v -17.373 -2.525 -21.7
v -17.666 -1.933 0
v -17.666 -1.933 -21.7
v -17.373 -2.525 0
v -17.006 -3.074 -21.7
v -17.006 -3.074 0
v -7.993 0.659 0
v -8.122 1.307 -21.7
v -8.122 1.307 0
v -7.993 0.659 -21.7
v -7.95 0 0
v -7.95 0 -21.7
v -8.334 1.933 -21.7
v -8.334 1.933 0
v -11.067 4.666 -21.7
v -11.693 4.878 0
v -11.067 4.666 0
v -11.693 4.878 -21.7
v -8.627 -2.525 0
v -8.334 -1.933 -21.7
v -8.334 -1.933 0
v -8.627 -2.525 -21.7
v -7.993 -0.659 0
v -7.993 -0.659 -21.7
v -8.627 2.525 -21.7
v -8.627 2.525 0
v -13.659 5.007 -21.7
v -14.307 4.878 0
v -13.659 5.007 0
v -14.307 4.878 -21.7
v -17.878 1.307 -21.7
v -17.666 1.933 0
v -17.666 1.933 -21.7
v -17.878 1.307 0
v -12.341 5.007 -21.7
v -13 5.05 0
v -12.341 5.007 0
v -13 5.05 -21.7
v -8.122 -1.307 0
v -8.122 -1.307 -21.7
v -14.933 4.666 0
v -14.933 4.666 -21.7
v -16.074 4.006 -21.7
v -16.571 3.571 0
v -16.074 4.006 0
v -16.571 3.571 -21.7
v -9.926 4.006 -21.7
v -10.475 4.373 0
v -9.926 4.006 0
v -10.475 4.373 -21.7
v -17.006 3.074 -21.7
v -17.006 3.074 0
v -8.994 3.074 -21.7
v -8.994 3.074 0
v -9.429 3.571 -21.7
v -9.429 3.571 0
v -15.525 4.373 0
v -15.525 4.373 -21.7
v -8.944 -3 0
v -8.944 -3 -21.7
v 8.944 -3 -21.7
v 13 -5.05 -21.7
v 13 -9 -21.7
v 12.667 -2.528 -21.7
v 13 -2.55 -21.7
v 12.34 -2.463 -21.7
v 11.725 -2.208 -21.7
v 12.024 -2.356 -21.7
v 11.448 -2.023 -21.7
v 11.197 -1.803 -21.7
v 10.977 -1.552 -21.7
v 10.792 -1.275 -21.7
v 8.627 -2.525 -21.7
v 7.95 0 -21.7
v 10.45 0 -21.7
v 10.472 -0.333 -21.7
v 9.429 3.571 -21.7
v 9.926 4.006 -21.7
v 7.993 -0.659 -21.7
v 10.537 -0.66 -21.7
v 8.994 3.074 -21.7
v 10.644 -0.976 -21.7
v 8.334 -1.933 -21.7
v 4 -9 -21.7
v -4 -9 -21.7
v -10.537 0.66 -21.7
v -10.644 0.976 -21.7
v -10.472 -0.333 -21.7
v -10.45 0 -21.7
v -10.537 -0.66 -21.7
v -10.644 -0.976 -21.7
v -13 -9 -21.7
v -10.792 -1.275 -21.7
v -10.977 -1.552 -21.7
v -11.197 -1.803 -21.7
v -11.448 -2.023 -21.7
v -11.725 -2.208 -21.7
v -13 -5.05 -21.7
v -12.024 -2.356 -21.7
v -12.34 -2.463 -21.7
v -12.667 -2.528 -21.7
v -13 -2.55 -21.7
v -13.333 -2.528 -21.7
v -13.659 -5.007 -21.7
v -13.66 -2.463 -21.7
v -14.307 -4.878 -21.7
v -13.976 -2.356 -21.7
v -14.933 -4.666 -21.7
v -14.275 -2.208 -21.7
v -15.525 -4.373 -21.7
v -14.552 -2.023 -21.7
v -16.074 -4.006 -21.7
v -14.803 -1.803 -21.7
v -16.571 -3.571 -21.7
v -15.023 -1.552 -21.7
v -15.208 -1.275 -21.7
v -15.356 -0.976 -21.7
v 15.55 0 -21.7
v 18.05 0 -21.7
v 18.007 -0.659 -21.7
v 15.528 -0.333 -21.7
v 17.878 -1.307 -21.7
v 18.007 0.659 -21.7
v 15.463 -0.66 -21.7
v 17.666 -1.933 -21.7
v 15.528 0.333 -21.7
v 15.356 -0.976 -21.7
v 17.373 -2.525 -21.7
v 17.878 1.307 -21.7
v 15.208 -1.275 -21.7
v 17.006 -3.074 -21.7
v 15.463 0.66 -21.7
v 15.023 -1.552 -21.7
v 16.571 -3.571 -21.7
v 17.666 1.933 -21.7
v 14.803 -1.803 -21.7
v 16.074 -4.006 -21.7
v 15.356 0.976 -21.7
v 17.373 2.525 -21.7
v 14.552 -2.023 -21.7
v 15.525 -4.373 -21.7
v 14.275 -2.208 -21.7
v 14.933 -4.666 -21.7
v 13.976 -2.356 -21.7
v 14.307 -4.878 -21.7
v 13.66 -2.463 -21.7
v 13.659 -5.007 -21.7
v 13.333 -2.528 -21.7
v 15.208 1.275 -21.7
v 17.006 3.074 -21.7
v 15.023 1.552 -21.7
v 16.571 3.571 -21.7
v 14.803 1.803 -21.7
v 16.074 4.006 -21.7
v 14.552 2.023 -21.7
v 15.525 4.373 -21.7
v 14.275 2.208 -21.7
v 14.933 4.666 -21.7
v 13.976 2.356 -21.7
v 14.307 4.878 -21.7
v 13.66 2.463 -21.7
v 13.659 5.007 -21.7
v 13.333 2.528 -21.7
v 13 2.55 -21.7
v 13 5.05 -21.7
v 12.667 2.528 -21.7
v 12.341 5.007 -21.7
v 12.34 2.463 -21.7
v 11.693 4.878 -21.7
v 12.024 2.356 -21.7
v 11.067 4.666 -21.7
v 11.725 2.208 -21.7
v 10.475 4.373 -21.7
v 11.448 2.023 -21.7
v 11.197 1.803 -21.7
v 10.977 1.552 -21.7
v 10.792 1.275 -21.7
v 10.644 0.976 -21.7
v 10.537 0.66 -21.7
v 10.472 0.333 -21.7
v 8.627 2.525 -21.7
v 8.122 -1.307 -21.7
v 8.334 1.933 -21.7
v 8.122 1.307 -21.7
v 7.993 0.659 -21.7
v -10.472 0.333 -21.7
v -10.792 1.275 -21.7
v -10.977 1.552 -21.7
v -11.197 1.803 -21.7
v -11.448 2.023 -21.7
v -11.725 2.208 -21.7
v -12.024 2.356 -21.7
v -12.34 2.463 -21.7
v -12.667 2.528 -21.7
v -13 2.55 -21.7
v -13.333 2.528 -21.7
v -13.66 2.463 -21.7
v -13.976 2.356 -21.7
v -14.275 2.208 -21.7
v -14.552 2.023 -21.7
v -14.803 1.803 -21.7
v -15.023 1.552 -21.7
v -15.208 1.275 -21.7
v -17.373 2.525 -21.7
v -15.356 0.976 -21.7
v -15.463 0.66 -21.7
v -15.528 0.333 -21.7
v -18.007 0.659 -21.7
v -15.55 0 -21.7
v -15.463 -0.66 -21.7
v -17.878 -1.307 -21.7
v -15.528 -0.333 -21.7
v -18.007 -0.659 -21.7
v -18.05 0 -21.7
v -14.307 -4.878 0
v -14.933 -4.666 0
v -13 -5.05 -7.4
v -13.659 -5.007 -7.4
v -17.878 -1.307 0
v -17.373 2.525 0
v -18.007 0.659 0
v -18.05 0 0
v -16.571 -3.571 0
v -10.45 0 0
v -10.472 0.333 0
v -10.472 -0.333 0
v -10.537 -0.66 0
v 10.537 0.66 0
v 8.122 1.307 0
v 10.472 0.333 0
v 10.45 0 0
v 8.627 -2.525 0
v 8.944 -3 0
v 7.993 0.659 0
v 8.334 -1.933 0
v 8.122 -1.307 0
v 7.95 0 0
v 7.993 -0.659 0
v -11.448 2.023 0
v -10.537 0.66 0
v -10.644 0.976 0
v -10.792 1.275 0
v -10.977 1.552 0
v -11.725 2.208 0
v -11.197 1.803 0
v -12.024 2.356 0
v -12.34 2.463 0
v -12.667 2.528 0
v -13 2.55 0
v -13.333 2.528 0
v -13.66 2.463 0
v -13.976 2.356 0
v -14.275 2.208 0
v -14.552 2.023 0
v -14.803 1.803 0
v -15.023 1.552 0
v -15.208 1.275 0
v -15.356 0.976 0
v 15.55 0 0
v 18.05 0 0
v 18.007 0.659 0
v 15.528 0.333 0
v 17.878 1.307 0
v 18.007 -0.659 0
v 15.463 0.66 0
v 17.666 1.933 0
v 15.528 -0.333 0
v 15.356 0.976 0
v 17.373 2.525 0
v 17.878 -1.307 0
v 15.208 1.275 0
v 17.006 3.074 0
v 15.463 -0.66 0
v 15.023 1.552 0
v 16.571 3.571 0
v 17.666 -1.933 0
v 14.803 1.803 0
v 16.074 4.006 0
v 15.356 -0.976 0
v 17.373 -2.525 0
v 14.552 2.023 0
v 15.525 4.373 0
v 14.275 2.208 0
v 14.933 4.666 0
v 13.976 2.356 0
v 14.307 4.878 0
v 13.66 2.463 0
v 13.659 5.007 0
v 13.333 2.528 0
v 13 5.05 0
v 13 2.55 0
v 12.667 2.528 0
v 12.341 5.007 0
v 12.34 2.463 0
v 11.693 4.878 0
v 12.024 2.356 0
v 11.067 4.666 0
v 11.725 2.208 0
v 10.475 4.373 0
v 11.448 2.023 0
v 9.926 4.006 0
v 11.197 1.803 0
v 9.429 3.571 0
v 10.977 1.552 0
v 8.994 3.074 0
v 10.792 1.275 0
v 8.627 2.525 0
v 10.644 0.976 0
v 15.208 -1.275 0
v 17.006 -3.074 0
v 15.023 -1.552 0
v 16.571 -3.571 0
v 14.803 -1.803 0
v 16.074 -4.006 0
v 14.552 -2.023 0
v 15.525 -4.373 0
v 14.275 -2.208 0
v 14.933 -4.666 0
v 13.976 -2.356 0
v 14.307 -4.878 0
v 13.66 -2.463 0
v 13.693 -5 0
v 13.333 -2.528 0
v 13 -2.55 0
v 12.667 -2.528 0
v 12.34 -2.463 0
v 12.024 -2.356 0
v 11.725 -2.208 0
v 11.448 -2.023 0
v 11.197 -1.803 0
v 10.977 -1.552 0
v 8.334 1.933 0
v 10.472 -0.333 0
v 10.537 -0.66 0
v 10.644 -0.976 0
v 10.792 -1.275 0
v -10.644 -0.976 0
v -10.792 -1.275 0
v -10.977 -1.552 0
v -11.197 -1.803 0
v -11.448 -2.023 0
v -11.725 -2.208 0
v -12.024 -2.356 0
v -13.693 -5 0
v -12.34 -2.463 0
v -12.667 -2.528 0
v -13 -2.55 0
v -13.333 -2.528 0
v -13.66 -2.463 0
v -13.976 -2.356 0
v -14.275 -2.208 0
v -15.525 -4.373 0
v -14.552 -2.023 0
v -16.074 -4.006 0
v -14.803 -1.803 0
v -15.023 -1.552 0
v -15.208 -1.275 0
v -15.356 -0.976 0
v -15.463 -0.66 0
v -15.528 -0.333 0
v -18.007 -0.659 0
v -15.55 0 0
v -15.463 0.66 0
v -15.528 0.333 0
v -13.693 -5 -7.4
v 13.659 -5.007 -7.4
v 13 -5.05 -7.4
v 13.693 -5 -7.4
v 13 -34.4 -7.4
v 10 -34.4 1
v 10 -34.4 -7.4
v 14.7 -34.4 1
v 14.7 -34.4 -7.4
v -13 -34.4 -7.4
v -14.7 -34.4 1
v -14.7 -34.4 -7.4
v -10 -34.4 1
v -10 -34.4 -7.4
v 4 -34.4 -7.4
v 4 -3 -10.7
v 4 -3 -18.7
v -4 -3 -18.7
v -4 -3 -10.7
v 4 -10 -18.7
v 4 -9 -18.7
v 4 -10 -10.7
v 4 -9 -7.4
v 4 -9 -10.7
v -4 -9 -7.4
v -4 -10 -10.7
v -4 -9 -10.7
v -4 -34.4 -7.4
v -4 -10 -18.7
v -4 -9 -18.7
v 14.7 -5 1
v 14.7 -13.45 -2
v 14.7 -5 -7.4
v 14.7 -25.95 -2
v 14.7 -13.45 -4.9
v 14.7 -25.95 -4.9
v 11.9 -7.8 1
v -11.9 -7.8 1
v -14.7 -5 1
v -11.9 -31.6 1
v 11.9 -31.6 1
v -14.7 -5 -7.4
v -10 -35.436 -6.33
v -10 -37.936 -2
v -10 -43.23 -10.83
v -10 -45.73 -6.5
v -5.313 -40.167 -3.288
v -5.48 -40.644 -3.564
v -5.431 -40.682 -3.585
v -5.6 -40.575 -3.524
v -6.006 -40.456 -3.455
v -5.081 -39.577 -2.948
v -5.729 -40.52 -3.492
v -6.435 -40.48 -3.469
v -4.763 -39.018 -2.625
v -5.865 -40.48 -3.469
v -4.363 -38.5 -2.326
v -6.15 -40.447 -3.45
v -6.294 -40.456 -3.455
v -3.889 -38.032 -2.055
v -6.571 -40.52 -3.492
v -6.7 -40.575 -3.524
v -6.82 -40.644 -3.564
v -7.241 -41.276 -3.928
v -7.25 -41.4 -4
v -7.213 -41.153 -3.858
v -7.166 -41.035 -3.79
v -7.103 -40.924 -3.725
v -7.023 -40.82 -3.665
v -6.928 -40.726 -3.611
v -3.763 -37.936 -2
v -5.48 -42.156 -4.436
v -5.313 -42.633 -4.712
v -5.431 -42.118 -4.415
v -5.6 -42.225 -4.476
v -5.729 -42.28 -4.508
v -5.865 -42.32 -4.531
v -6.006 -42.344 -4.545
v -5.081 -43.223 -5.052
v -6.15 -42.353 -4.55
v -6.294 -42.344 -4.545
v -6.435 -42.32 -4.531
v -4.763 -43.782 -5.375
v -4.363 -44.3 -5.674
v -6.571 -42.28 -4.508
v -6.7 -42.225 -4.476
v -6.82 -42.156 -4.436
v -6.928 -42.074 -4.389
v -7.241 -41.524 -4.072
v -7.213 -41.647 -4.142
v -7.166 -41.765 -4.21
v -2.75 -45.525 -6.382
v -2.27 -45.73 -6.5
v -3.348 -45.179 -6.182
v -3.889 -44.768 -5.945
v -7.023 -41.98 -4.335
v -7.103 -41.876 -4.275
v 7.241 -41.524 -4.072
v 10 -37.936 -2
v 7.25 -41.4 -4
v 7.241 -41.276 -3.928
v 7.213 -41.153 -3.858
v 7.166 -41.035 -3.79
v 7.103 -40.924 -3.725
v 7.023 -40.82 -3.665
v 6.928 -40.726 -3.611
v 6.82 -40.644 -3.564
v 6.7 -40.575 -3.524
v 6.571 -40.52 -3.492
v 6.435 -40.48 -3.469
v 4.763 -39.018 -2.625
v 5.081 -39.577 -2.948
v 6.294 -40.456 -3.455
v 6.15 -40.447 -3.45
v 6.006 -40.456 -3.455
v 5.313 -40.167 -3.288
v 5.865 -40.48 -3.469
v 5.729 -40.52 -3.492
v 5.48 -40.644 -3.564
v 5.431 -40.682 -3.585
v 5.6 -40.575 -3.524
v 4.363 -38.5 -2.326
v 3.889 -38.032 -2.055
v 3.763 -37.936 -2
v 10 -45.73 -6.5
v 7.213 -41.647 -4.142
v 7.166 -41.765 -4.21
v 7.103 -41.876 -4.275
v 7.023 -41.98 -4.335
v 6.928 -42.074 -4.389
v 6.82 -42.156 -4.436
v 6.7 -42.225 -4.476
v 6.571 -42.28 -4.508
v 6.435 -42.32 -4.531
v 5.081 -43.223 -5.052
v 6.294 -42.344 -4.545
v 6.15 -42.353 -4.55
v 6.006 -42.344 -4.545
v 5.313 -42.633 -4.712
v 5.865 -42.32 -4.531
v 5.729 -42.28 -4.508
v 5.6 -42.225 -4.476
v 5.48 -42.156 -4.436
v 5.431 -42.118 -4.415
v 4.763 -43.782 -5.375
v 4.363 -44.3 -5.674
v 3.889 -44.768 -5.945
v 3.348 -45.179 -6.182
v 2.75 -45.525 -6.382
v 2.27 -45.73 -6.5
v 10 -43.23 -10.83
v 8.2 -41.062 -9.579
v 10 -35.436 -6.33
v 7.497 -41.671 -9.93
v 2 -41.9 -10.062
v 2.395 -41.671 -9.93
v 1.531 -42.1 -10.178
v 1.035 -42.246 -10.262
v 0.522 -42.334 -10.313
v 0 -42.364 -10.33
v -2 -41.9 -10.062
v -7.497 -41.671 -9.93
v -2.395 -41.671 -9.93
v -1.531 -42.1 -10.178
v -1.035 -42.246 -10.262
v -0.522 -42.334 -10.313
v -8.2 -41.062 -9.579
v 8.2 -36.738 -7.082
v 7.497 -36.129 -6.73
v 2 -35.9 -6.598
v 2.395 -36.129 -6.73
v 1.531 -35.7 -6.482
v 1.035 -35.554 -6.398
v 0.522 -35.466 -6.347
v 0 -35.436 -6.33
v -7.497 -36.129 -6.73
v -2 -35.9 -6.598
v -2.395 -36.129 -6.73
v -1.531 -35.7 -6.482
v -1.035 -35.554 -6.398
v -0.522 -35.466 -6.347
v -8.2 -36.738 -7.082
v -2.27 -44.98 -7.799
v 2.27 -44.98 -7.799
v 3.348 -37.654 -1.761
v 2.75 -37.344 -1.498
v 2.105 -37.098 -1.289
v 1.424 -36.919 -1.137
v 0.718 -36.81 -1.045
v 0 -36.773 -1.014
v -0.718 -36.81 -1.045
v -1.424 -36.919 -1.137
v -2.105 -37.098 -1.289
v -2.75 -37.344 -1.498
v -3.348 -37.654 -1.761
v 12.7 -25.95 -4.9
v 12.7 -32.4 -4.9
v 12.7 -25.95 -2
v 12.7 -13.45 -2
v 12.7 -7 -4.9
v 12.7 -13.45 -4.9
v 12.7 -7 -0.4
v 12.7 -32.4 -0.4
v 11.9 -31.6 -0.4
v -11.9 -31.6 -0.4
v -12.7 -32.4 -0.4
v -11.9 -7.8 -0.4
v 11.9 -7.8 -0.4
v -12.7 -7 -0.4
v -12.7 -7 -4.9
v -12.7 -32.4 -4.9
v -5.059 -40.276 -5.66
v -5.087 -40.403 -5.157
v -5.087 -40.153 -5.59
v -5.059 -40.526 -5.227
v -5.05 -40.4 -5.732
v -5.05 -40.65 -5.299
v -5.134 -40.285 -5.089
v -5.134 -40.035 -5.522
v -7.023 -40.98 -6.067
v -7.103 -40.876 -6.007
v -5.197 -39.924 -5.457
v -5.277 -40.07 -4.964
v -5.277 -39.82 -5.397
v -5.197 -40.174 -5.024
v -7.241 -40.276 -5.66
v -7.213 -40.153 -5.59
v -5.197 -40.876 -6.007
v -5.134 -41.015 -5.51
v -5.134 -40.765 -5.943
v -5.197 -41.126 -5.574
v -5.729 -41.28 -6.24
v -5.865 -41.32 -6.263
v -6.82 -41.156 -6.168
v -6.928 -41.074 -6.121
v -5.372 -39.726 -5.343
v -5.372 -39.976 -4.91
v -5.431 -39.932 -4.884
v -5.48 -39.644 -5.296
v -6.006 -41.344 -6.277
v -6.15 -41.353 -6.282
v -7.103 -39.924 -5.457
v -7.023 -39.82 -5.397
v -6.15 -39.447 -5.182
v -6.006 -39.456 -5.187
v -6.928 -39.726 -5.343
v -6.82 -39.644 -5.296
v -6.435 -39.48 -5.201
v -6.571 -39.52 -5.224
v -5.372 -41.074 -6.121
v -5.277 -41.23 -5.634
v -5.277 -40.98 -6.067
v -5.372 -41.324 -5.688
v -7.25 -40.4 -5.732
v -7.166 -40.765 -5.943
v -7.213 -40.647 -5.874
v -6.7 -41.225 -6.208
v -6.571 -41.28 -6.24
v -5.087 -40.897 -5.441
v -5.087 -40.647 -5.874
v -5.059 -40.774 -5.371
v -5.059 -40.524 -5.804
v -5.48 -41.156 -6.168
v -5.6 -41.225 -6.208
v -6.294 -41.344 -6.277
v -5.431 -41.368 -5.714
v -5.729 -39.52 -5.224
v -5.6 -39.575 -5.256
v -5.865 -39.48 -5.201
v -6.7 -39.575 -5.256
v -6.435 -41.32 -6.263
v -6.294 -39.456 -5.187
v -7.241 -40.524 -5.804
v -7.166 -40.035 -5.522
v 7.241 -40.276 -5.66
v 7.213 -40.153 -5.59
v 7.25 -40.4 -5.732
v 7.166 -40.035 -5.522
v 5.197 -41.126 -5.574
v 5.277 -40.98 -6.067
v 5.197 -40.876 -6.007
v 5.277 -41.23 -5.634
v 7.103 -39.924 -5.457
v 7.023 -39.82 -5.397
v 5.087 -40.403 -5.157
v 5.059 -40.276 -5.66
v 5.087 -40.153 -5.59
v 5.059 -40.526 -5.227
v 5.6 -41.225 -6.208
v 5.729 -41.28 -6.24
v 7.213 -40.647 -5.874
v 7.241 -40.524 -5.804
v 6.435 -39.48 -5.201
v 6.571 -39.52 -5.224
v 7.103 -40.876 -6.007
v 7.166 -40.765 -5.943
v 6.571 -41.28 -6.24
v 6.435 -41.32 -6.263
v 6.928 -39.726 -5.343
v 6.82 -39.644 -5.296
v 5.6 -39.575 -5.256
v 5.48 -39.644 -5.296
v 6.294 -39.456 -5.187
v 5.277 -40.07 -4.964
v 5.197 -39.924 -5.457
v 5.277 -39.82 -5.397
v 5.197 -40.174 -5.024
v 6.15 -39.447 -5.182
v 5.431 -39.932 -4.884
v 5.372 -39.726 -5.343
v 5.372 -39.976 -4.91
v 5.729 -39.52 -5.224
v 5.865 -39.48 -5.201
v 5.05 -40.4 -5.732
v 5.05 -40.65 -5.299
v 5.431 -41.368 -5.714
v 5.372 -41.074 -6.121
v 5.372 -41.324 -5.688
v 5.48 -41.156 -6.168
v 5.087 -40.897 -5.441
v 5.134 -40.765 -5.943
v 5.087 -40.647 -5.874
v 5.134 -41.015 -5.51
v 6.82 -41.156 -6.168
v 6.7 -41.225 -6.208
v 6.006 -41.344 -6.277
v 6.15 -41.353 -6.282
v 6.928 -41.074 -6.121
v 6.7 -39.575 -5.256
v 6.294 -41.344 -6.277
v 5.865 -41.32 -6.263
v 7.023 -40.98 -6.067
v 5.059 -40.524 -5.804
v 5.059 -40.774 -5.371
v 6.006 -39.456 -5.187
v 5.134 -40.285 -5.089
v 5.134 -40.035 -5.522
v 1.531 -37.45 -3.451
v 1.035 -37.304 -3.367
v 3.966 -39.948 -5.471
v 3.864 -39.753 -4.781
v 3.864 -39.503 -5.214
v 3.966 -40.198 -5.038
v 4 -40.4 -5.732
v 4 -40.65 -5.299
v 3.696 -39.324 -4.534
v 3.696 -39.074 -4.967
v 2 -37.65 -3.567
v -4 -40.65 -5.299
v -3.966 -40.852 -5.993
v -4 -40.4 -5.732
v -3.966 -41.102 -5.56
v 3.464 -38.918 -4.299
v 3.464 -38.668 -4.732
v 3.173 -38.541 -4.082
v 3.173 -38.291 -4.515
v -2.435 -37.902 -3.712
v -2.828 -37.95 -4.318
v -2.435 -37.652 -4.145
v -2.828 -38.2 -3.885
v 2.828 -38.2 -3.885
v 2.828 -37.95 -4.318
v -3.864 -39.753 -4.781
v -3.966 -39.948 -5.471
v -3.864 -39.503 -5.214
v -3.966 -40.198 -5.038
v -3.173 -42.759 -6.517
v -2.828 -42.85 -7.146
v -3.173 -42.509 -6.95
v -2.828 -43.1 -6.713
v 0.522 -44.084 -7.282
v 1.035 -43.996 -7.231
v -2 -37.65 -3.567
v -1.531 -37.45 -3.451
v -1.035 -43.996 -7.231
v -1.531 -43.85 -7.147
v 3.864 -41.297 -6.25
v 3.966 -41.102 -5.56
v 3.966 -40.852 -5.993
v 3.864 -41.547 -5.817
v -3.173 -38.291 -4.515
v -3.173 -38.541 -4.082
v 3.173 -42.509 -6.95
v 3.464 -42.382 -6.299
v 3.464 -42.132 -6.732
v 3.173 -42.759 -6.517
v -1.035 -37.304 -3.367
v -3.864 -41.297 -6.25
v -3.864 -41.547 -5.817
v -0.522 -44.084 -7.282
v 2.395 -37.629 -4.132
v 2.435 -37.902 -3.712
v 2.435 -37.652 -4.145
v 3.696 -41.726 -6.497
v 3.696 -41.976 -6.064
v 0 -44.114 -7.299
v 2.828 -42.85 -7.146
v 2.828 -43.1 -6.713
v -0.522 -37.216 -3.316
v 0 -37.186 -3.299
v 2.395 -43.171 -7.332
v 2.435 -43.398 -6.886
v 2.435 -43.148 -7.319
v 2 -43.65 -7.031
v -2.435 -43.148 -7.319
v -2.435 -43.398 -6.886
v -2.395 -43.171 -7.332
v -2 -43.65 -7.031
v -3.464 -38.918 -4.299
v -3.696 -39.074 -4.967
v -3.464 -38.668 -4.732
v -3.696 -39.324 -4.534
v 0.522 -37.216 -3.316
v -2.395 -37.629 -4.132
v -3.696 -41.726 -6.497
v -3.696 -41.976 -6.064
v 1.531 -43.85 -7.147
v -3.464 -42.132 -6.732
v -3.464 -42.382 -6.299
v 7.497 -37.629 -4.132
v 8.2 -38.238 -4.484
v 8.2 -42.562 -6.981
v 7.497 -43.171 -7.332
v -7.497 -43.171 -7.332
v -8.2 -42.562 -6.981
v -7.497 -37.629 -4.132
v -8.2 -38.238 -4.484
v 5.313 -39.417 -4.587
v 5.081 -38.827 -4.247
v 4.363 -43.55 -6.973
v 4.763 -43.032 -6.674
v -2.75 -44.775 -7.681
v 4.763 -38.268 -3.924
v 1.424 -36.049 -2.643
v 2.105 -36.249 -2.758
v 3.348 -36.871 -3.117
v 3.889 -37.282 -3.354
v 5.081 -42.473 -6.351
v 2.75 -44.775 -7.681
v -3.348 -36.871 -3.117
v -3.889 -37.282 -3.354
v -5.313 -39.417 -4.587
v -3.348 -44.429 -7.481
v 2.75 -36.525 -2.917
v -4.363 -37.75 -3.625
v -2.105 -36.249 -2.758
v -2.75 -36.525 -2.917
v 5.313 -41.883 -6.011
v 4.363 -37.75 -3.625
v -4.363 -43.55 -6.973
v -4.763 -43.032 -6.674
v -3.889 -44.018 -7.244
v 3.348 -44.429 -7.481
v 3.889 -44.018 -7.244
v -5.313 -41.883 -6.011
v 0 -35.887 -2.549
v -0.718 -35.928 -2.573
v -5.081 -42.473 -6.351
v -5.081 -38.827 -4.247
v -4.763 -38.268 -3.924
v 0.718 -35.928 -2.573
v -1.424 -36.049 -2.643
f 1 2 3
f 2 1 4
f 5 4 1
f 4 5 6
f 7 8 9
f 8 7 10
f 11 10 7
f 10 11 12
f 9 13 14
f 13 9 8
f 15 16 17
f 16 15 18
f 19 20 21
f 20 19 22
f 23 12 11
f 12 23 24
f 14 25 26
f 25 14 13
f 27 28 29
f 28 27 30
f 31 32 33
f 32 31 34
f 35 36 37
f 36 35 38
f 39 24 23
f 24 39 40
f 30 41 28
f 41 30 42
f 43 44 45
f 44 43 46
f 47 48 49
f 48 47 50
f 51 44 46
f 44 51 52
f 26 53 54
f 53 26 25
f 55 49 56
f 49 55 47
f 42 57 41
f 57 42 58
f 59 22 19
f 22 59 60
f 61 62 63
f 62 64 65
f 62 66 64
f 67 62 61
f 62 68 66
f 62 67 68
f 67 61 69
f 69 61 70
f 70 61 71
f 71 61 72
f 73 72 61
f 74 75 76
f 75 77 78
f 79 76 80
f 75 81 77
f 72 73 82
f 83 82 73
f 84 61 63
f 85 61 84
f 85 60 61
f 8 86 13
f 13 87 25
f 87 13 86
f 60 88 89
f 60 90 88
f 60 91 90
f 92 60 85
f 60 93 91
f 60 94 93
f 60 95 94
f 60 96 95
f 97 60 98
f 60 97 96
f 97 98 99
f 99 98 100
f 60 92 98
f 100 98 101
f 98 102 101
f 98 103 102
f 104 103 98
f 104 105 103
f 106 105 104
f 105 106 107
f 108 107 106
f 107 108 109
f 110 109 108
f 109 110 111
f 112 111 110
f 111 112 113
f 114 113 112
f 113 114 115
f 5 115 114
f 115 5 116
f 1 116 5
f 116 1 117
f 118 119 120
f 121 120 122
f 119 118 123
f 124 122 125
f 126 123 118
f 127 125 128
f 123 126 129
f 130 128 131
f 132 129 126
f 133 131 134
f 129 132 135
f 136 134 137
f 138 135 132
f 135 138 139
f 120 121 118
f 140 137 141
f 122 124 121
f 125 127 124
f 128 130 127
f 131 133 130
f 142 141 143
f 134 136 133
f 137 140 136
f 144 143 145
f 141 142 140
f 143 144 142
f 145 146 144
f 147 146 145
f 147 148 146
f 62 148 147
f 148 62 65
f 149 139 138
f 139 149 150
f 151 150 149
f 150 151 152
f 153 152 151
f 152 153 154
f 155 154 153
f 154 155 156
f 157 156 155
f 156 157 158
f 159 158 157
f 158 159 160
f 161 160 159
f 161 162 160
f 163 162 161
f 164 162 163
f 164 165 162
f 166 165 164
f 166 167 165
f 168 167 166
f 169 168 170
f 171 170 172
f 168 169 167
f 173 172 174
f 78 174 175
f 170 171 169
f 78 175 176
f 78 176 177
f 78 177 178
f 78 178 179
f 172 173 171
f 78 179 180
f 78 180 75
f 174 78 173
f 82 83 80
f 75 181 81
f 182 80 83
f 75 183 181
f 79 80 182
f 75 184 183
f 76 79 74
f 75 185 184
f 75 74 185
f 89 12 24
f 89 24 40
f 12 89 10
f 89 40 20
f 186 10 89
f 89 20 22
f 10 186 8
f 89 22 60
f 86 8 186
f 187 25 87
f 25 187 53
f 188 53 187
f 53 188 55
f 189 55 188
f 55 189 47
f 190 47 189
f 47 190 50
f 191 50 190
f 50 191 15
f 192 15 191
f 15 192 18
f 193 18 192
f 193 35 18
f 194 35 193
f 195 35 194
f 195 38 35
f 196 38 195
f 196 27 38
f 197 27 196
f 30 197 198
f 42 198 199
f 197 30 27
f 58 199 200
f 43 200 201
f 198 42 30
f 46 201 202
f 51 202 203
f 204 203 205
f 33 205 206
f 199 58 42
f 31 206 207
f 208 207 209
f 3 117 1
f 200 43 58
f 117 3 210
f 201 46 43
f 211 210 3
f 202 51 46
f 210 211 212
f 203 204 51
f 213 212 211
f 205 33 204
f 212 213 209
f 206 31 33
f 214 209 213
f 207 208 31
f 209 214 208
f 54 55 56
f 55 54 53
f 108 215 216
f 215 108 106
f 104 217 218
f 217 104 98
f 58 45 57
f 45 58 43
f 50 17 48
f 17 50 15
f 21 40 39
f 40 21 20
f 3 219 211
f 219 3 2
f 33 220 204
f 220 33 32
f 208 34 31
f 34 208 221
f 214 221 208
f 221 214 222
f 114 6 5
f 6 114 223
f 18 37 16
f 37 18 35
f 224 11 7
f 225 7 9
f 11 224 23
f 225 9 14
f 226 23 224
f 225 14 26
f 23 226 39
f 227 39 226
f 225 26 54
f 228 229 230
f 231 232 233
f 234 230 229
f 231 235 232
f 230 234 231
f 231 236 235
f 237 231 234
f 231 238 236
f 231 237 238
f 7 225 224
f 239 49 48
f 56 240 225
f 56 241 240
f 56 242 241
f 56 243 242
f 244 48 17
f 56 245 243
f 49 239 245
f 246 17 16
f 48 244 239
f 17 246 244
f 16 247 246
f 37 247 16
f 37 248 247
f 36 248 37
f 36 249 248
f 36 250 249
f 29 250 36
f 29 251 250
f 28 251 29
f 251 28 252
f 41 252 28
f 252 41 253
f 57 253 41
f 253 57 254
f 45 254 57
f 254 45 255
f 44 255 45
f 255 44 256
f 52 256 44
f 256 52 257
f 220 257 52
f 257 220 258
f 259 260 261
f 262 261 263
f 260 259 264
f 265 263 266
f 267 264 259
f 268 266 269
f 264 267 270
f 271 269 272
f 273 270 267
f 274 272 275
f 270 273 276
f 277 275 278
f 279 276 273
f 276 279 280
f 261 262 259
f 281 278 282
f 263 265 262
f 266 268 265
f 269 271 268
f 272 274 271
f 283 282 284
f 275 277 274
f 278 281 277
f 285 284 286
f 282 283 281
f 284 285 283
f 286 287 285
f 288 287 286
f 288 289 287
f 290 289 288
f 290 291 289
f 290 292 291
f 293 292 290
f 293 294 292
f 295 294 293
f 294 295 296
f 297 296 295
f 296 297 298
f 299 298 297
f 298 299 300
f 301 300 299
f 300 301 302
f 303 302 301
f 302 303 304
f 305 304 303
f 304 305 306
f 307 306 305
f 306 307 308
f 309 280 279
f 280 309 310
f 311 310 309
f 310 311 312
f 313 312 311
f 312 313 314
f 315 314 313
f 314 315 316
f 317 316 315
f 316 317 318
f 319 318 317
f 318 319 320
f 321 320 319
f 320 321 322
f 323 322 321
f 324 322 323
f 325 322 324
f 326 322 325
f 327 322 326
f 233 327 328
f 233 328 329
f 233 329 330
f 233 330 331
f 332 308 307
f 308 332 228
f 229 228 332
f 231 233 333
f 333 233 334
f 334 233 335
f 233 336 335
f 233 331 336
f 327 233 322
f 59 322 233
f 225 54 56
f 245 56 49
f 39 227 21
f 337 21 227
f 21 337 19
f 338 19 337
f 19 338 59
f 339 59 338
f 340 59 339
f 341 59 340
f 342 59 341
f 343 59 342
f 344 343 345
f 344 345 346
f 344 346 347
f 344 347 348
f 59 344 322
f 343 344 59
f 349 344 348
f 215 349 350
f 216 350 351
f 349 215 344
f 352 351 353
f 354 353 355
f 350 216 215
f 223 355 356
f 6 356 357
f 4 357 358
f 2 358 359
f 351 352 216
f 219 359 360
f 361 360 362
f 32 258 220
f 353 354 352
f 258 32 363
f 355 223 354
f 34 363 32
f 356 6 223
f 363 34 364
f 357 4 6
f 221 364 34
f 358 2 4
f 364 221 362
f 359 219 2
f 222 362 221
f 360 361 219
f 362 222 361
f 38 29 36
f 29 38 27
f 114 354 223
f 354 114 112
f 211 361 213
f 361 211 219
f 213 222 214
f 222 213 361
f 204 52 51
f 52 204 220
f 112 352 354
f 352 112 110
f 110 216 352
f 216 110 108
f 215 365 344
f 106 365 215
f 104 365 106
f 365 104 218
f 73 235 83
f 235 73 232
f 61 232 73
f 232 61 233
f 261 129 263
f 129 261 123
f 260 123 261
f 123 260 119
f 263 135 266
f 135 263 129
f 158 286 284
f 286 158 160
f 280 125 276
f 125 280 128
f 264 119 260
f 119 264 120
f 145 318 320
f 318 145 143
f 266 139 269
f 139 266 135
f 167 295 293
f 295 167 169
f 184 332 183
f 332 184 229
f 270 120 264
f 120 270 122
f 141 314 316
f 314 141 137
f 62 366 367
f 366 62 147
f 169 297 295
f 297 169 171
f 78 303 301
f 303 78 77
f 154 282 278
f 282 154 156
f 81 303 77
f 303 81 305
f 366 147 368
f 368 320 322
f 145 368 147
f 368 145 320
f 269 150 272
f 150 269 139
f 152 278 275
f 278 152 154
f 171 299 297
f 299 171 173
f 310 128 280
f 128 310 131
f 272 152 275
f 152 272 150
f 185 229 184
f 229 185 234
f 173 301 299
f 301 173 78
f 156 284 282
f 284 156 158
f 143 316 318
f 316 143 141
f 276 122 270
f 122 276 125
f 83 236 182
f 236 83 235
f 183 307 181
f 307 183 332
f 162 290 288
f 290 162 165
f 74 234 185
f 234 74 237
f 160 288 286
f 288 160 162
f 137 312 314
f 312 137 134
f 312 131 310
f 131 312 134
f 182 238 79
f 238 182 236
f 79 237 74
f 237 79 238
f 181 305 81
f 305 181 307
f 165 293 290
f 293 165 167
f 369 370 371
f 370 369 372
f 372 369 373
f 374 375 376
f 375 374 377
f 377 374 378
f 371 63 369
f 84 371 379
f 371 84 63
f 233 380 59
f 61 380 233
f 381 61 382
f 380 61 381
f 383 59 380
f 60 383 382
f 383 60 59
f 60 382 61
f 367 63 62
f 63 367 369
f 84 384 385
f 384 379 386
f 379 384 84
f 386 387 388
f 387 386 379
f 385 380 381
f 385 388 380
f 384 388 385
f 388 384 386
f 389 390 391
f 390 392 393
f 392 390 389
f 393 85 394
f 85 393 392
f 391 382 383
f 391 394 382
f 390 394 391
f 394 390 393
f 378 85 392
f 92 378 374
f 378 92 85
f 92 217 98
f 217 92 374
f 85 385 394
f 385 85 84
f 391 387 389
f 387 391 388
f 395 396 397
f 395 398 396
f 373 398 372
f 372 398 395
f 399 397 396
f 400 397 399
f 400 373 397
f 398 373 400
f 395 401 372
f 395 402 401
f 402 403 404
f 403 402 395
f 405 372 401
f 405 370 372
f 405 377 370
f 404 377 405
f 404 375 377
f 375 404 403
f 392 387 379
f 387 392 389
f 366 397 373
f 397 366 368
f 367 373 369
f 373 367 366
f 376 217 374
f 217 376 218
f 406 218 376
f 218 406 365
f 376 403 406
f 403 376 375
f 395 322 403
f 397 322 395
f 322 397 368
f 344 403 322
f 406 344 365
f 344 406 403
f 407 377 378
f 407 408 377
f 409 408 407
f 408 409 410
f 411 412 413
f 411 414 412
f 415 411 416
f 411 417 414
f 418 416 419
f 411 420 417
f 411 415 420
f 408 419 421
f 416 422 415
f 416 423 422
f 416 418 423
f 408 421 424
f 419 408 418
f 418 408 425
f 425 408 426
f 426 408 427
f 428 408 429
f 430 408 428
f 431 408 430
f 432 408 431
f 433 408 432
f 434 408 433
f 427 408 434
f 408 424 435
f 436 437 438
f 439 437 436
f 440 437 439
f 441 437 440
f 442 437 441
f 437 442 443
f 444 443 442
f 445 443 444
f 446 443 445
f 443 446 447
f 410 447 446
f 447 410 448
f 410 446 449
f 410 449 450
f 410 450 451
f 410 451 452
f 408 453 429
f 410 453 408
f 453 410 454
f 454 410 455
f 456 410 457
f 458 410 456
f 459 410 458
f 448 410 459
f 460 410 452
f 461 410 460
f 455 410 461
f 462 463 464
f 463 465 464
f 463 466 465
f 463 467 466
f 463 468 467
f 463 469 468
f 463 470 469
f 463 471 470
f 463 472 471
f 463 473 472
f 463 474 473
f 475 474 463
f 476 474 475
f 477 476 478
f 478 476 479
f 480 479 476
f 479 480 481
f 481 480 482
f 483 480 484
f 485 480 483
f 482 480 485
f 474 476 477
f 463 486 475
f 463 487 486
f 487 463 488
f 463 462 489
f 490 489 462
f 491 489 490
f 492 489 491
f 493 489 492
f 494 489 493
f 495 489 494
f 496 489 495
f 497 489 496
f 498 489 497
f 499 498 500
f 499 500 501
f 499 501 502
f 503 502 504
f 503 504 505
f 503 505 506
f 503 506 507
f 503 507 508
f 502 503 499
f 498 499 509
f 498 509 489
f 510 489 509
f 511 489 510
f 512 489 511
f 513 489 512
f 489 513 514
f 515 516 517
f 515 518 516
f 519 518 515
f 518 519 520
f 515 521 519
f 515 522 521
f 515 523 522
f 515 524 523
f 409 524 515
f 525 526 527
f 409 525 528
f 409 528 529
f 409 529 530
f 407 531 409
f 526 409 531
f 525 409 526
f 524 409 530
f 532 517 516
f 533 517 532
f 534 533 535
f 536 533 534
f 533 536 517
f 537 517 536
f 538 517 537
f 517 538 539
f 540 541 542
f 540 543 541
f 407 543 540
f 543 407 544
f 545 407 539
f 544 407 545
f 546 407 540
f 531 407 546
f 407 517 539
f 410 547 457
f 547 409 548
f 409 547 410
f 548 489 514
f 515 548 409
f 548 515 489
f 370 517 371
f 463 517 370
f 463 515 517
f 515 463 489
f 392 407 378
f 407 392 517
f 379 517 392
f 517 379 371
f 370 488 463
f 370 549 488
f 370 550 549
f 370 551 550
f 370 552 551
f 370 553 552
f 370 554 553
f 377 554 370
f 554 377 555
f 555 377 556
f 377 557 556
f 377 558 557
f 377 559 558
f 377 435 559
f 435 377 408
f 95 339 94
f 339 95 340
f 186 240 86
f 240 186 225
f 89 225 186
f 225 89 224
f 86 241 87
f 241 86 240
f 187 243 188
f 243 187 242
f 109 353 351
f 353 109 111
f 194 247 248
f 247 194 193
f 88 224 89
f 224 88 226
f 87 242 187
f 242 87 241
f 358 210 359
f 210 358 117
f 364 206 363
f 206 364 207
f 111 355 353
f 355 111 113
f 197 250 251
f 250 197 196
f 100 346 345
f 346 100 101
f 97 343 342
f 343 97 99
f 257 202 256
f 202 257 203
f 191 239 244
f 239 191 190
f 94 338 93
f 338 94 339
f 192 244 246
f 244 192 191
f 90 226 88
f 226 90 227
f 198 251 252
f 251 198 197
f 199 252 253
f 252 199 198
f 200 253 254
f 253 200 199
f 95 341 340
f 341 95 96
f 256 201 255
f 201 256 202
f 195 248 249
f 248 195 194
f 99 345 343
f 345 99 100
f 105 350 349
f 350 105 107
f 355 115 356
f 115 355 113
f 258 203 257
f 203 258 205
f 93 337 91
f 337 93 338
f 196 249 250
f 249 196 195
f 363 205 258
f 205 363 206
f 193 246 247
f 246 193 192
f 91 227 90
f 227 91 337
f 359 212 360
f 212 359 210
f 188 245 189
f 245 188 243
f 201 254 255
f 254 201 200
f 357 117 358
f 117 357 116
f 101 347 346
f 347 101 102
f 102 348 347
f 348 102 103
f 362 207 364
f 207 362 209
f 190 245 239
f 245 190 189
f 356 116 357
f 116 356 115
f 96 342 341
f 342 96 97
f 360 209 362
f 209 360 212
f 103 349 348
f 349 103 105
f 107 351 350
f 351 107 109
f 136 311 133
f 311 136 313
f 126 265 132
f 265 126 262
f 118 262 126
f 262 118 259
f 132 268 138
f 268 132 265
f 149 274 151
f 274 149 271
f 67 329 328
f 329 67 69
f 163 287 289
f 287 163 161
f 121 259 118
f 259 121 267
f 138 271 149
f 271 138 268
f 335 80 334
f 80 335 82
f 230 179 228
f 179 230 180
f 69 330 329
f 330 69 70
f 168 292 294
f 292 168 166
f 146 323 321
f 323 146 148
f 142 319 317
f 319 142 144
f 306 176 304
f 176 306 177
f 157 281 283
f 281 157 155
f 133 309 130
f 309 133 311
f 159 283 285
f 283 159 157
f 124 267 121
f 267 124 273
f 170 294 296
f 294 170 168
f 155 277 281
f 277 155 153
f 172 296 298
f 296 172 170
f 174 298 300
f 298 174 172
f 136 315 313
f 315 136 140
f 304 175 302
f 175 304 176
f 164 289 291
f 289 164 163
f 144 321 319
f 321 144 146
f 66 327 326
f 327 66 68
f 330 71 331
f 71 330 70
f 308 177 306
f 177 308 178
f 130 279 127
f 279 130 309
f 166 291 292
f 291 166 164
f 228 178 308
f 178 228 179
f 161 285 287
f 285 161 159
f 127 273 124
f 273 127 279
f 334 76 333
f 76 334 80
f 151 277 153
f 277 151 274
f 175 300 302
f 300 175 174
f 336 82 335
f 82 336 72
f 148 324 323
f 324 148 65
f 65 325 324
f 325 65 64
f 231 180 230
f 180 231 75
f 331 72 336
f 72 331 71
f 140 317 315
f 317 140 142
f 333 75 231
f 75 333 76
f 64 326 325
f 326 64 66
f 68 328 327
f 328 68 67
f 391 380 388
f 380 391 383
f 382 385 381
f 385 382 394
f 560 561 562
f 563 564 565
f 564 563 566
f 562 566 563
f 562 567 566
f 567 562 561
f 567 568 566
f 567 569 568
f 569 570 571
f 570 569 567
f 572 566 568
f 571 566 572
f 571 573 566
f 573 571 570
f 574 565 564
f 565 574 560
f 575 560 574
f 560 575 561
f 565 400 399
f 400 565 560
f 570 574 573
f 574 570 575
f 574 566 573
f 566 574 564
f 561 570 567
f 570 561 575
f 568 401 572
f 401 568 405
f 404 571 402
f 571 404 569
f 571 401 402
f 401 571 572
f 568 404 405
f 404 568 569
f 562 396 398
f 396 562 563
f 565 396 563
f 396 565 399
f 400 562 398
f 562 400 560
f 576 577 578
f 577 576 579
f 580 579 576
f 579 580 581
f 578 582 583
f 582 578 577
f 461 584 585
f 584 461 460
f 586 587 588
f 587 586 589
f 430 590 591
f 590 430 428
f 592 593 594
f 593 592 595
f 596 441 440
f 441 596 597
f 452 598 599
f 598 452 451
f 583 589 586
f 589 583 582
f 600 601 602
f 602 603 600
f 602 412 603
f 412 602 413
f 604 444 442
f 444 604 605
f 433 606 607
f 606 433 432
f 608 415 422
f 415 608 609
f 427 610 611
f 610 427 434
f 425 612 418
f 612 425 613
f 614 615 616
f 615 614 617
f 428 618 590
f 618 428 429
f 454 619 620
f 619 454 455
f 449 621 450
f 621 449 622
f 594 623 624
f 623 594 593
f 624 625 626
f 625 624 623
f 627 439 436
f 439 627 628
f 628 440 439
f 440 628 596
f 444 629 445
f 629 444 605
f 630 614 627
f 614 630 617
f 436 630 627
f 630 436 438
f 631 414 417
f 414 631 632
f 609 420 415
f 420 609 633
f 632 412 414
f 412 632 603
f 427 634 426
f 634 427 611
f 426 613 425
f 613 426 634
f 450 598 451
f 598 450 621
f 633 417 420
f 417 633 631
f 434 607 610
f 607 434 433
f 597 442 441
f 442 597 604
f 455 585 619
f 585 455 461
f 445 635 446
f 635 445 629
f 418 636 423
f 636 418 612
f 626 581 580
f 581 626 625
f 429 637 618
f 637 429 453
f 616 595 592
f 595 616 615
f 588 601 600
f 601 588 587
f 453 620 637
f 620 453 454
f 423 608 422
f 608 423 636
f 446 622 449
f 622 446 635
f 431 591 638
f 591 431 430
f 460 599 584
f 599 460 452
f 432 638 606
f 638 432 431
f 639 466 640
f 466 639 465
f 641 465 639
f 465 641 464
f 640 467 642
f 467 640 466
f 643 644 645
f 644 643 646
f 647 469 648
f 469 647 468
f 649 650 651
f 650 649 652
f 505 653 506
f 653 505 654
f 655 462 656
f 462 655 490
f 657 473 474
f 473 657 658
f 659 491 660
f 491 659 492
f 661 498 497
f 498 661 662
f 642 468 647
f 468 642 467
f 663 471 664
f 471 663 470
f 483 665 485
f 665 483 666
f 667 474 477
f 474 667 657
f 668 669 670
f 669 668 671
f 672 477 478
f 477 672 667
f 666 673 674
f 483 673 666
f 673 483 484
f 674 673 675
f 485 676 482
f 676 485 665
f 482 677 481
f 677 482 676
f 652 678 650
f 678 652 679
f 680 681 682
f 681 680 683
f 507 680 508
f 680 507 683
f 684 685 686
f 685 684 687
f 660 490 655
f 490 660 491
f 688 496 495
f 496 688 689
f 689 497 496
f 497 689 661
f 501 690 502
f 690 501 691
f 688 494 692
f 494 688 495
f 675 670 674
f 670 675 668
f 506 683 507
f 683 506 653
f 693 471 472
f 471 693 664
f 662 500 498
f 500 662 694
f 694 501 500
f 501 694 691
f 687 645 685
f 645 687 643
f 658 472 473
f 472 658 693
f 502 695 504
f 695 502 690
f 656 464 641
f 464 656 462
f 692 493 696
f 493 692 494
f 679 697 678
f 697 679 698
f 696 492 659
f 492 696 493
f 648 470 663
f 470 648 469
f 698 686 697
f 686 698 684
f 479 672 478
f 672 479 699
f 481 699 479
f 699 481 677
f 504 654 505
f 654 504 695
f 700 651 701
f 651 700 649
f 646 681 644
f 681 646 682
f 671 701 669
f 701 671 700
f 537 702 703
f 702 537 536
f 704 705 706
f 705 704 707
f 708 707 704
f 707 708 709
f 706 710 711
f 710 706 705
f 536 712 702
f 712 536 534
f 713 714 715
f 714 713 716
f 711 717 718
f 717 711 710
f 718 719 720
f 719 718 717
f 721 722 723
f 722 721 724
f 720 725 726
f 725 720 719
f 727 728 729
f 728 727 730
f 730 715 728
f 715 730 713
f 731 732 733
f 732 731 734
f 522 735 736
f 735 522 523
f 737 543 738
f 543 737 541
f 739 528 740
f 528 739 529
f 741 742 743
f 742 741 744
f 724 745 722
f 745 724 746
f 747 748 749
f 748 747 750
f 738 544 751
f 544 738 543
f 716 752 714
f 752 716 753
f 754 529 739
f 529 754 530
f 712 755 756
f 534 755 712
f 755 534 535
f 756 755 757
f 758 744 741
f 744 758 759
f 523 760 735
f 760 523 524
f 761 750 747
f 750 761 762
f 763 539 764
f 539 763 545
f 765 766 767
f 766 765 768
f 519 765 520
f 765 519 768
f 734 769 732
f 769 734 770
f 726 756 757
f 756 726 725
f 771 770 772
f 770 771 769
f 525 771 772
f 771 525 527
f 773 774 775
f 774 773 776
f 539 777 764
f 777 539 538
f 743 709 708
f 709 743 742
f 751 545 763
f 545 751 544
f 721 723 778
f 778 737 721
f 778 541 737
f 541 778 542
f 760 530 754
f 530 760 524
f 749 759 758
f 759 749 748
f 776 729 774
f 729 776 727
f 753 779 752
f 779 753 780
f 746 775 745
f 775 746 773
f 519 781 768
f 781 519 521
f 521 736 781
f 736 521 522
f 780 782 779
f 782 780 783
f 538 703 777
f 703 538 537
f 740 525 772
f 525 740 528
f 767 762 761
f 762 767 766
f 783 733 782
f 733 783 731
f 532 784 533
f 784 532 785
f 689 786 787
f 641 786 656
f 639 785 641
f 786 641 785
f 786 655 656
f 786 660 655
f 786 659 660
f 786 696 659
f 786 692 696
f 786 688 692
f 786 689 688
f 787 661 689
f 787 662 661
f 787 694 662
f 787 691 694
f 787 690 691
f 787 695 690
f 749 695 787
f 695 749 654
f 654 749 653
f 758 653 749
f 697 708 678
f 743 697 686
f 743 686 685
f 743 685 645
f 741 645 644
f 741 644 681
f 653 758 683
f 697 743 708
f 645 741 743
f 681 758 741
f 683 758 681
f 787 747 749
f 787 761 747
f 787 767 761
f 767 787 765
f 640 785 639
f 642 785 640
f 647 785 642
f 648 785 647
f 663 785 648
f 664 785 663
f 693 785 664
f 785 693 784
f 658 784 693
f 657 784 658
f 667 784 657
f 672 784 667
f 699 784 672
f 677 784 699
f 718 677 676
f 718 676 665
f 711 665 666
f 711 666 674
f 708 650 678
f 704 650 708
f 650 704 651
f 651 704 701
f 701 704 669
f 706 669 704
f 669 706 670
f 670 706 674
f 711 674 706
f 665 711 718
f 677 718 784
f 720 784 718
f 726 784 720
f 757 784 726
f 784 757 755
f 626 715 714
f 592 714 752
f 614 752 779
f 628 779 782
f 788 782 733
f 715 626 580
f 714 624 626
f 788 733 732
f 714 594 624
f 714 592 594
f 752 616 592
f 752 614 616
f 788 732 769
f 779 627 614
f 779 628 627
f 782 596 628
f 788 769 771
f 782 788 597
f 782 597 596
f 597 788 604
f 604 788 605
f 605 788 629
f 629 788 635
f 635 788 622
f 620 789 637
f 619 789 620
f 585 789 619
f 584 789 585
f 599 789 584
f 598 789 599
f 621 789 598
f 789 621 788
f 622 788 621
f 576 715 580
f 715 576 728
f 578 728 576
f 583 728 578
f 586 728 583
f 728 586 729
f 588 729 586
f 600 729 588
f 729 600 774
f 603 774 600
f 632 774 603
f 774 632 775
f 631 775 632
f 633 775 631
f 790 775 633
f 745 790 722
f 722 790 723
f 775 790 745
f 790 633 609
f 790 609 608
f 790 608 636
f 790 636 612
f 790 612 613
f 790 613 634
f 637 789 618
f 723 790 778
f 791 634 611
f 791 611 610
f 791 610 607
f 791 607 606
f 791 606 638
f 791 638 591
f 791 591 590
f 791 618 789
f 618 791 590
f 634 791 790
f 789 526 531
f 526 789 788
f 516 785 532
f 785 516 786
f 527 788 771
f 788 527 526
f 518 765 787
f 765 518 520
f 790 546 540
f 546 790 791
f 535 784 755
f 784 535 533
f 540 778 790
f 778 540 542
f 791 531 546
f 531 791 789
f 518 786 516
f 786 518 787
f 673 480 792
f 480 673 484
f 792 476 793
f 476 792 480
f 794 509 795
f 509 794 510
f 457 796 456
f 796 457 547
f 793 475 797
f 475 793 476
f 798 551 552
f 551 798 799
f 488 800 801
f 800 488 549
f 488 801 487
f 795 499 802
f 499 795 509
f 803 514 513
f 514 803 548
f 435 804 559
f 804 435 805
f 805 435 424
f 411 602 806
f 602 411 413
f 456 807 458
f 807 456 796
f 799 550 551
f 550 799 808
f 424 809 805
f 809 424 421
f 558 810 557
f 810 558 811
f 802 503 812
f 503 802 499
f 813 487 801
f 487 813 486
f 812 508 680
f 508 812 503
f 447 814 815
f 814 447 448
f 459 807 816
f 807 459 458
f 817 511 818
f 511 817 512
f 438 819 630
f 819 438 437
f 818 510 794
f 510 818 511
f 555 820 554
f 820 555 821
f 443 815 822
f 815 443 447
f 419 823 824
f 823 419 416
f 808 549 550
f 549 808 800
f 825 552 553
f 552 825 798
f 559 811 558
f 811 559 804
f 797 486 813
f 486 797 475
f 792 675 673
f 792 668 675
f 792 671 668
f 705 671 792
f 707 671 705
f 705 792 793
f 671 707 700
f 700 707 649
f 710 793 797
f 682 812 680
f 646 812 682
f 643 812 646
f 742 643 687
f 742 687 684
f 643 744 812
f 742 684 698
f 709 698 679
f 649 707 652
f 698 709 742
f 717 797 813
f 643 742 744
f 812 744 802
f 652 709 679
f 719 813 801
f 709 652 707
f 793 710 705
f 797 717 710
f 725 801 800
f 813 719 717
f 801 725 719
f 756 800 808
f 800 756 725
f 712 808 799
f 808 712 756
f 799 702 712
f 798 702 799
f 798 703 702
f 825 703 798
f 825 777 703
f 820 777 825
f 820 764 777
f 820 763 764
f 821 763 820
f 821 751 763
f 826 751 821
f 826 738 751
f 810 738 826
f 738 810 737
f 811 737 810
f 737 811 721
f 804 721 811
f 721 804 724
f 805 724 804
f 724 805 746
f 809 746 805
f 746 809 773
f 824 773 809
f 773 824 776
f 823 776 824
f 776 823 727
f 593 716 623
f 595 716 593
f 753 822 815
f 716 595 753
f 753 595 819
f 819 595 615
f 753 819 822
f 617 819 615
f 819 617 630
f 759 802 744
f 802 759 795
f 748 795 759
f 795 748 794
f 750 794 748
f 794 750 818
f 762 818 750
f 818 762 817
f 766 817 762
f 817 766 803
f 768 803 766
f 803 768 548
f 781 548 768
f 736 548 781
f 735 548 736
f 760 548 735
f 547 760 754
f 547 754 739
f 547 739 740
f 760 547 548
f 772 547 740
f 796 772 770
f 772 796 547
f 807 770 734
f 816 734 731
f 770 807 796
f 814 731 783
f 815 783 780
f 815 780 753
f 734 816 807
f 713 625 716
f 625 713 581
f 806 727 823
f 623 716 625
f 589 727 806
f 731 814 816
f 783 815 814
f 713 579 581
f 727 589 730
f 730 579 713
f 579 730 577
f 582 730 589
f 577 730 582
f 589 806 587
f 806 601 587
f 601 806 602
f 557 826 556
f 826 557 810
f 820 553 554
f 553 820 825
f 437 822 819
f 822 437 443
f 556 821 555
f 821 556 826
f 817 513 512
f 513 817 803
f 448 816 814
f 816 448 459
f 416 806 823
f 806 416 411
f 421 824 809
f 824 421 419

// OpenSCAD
// Pilotix Rocky5 tail mount: SMA 2-hole flange (MGS 7813 style) + Norduva GPS module v3.0.5
// Print in TPU 95A.
// Coordinates: X across frame, +Y forward, Z up.
// Origin: midpoint between the two tail standoff centres, z=0 = underside of top plate.

$fn = 48;
show_ghost = false;          // true: show standoffs, top plate, GPS and antenna for fit check

// ---------- frame ----------
so_pitch   = 26.0;           // tail standoff c-c (measured from plate photos)
so_d       = 5.0;            // standoff diameter
so_len     = 22;             // tail standoff length (top plate to bottom plate) - MEASURE
so_clear   = 0.1;            // bore = so_d + so_clear (printed TPU holes run ~0.1-0.2 small)
ring_wall  = 2.5;
ring_h     = so_len - 0.3;   // sleeve spans the standoff, trapped by the plates
cable_slot = [8, 8];         // SMA cable pass-through in the bridge (w, h)
brace_t    = 8;              // diagonal brace thickness
plate_end  = 3.6;            // top plate end behind standoff centre (ghost/clearance only)
plate_t    = 2.0;

// ---------- GPS ----------
gps_w      = 25.0;
gps_clr    = 0.2;            // per side
gps_comp_h = 2.6;            // component side height (faces down)
gps_pcb_t  = 1.6;
gps_patch_h= 4.0;            // ceramic patch (faces up)
gps_patch_w= 20.0;
cav_extra  = 0.3;            // vertical slack (or foam tape)
floor_t    = 2.5;
wall_t     = 2.0;
lip_t      = 1.4;
lip_w      = 0.8;            // lip overlap onto PCB edge
jst_slot_w = 12.5;           // JST-GH slot, on +X wall
tray_front = -5.0;           // y of tray front face
tray_floor_z = -7.4;         // z of tray bottom

// ---------- SMA ----------
ant_tilt   = 30;             // deg from vertical, toward rear
fl_l       = 16.0 + 0.4;     // flange 16 x 6 x 1.5
fl_w       = 6.0 + 0.4;
fl_t       = 1.5;
fl_chamf   = 1.2;
fl_pitch   = 12.3;
fl_hole_d  = 2.2;            // M2 self-tap into TPU; 2.4 for screw + nut
body_d     = 8.0;            // clearance for body between flange and thread
sp_t       = 5.0;            // SMA plate thickness
sp_front   = 2.0;            // material between flange and front face (< 2.4 keeps thread exposed)
cbore_d    = 11;             // front counterbore for the antenna nut
sp_w       = 20;
sp_y0      = -5;             // plate extent along its own Y (local)
sp_y1      = 7;

// ---------- derived ----------
pocket     = gps_w + 2*gps_clr;
tray_o     = pocket + 2*wall_t;
cav_h      = gps_comp_h + gps_pcb_t + cav_extra;
tray_h     = floor_t + cav_h + lip_t;
tray_cy    = tray_front - tray_o/2;
ring_r     = (so_d + so_clear)/2 + ring_wall;
bridge_y   = [-9, -3];
sp_pos     = [0, tray_front - tray_o - 7, -4];   // SMA plate front-face centre

module rings() {
    for (sx = [-1, 1]) translate([sx*so_pitch/2, 0, -ring_h])
        cylinder(r = ring_r, h = ring_h);
}

module ring_cuts() {
    for (sx = [-1, 1]) translate([sx*so_pitch/2, 0, -ring_h - 1]) {
        cylinder(d = so_d + so_clear, h = ring_h + 2);
    }
    // cable pass-through between the standoffs
    translate([-cable_slot[0]/2, bridge_y[0] - 1, -ring_h + 3])
        cube([cable_slot[0], bridge_y[1] - bridge_y[0] + 2, cable_slot[1]]);
}

module bridge() {
    translate([-so_pitch/2, bridge_y[0], -ring_h])
        cube([so_pitch, bridge_y[1] - bridge_y[0], ring_h]);
}

module tray() {
    translate([-tray_o/2, tray_front - tray_o, tray_floor_z])
        cube([tray_o, tray_o, tray_h]);
}

module tray_cuts() {
    // cavity under the lip
    translate([-pocket/2, tray_cy - pocket/2, tray_floor_z + floor_t])
        cube([pocket, pocket, cav_h]);
    // lip opening
    translate([-(pocket/2 - lip_w), tray_cy - (pocket/2 - lip_w), tray_floor_z + floor_t + cav_h - 0.01])
        cube([pocket - 2*lip_w, pocket - 2*lip_w, lip_t + 1]);
    // JST-GH slot through +X wall, floor to PCB underside
    translate([pocket/2 - 1, tray_cy - jst_slot_w/2, tray_floor_z + floor_t])
        cube([wall_t + 2, jst_slot_w, gps_comp_h + cav_extra]);
}

module ribs() {
    // diagonal braces: solid wedges from cable slot edge to bridge edge, bridge foot to tray rear
    bx0 = cable_slot[0]/2;
    bx1 = so_pitch/2;
    for (m = [0, 1]) mirror([m, 0, 0]) hull() {
        translate([bx0, bridge_y[0], -ring_h]) cube([bx1 - bx0, bridge_y[1] - bridge_y[0], brace_t]);
        translate([bx0, tray_front - tray_o, tray_floor_z]) cube([bx1 - bx0, brace_t, brace_t]);
        // tray underside up to the bridge: makes the brace a solid wedge
        translate([bx0, tray_front - tray_o, tray_floor_z]) cube([bx1 - bx0, bridge_y[1] - (tray_front - tray_o), 1]);
    }
}

module flange_shape(l, w, c) {
    offset(delta = c, chamfer = true) square([l - 2*c, w - 2*c], center = true);
}

module sma_frame() {    // local frame: +Z = antenna axis, front face at z=0
    translate(sp_pos) rotate([ant_tilt, 0, 0]) children();
}

module sma_plate() {
    sma_frame() translate([-sp_w/2, sp_y0, -sp_t]) cube([sp_w, sp_y1 - sp_y0, sp_t]);
}

module sma_cuts() {
    sma_frame() {
        translate([0, 0, -sp_t - 1]) cylinder(d = body_d, h = sp_t + 2);
        translate([0, 0, -sp_t - 0.01]) linear_extrude(sp_t - sp_front + 0.01) flange_shape(fl_l, fl_w, fl_chamf);
        translate([0, 0, -(sp_t - fl_t - sp_front)]) cylinder(d = cbore_d, h = sp_t);
        for (sx = [-1, 1]) translate([sx*fl_pitch/2, 0, -sp_t - 1]) cylinder(d = fl_hole_d, h = sp_t + 2);
    }
}

module sma_web() {      // ties the upper edge of the SMA plate to the tray rear wall
    hull() {
        sma_frame() translate([-sp_w/2, sp_y1 - 3, -sp_t]) cube([sp_w, 3, sp_t]);
        translate([-sp_w/2, tray_front - tray_o, tray_floor_z]) cube([sp_w, 3, tray_h]);
    }
}

module mount() {
    difference() {
        union() { rings(); bridge(); tray(); ribs(); sma_plate(); sma_web(); }
        ring_cuts();
        tray_cuts();
        sma_cuts();
    }
}

module ghost() {
    %for (sx = [-1, 1]) translate([sx*so_pitch/2, 0, -so_len]) cylinder(d = so_d, h = so_len);
    %translate([-16.5, -plate_end, -so_len - plate_t]) cube([33, 60, plate_t]);
    %translate([-16.5, -plate_end, 0]) cube([33, 60, plate_t]);
    // GPS: components down, PCB, patch up
    %translate([-gps_w/2, tray_cy - gps_w/2, tray_floor_z + floor_t + cav_extra/2]) {
        cube([gps_w, gps_w, gps_comp_h + gps_pcb_t]);
        translate([(gps_w - gps_patch_w)/2, (gps_w - gps_patch_w)/2, gps_comp_h + gps_pcb_t])
            cube([gps_patch_w, gps_patch_w, gps_patch_h]);
    }
    // SMA body + antenna stub
    %sma_frame() { cylinder(d = 6.35, h = 8); translate([0, 0, 8]) cylinder(d = 8, h = 30); }
}

mount();
if (show_ghost) ghost();
